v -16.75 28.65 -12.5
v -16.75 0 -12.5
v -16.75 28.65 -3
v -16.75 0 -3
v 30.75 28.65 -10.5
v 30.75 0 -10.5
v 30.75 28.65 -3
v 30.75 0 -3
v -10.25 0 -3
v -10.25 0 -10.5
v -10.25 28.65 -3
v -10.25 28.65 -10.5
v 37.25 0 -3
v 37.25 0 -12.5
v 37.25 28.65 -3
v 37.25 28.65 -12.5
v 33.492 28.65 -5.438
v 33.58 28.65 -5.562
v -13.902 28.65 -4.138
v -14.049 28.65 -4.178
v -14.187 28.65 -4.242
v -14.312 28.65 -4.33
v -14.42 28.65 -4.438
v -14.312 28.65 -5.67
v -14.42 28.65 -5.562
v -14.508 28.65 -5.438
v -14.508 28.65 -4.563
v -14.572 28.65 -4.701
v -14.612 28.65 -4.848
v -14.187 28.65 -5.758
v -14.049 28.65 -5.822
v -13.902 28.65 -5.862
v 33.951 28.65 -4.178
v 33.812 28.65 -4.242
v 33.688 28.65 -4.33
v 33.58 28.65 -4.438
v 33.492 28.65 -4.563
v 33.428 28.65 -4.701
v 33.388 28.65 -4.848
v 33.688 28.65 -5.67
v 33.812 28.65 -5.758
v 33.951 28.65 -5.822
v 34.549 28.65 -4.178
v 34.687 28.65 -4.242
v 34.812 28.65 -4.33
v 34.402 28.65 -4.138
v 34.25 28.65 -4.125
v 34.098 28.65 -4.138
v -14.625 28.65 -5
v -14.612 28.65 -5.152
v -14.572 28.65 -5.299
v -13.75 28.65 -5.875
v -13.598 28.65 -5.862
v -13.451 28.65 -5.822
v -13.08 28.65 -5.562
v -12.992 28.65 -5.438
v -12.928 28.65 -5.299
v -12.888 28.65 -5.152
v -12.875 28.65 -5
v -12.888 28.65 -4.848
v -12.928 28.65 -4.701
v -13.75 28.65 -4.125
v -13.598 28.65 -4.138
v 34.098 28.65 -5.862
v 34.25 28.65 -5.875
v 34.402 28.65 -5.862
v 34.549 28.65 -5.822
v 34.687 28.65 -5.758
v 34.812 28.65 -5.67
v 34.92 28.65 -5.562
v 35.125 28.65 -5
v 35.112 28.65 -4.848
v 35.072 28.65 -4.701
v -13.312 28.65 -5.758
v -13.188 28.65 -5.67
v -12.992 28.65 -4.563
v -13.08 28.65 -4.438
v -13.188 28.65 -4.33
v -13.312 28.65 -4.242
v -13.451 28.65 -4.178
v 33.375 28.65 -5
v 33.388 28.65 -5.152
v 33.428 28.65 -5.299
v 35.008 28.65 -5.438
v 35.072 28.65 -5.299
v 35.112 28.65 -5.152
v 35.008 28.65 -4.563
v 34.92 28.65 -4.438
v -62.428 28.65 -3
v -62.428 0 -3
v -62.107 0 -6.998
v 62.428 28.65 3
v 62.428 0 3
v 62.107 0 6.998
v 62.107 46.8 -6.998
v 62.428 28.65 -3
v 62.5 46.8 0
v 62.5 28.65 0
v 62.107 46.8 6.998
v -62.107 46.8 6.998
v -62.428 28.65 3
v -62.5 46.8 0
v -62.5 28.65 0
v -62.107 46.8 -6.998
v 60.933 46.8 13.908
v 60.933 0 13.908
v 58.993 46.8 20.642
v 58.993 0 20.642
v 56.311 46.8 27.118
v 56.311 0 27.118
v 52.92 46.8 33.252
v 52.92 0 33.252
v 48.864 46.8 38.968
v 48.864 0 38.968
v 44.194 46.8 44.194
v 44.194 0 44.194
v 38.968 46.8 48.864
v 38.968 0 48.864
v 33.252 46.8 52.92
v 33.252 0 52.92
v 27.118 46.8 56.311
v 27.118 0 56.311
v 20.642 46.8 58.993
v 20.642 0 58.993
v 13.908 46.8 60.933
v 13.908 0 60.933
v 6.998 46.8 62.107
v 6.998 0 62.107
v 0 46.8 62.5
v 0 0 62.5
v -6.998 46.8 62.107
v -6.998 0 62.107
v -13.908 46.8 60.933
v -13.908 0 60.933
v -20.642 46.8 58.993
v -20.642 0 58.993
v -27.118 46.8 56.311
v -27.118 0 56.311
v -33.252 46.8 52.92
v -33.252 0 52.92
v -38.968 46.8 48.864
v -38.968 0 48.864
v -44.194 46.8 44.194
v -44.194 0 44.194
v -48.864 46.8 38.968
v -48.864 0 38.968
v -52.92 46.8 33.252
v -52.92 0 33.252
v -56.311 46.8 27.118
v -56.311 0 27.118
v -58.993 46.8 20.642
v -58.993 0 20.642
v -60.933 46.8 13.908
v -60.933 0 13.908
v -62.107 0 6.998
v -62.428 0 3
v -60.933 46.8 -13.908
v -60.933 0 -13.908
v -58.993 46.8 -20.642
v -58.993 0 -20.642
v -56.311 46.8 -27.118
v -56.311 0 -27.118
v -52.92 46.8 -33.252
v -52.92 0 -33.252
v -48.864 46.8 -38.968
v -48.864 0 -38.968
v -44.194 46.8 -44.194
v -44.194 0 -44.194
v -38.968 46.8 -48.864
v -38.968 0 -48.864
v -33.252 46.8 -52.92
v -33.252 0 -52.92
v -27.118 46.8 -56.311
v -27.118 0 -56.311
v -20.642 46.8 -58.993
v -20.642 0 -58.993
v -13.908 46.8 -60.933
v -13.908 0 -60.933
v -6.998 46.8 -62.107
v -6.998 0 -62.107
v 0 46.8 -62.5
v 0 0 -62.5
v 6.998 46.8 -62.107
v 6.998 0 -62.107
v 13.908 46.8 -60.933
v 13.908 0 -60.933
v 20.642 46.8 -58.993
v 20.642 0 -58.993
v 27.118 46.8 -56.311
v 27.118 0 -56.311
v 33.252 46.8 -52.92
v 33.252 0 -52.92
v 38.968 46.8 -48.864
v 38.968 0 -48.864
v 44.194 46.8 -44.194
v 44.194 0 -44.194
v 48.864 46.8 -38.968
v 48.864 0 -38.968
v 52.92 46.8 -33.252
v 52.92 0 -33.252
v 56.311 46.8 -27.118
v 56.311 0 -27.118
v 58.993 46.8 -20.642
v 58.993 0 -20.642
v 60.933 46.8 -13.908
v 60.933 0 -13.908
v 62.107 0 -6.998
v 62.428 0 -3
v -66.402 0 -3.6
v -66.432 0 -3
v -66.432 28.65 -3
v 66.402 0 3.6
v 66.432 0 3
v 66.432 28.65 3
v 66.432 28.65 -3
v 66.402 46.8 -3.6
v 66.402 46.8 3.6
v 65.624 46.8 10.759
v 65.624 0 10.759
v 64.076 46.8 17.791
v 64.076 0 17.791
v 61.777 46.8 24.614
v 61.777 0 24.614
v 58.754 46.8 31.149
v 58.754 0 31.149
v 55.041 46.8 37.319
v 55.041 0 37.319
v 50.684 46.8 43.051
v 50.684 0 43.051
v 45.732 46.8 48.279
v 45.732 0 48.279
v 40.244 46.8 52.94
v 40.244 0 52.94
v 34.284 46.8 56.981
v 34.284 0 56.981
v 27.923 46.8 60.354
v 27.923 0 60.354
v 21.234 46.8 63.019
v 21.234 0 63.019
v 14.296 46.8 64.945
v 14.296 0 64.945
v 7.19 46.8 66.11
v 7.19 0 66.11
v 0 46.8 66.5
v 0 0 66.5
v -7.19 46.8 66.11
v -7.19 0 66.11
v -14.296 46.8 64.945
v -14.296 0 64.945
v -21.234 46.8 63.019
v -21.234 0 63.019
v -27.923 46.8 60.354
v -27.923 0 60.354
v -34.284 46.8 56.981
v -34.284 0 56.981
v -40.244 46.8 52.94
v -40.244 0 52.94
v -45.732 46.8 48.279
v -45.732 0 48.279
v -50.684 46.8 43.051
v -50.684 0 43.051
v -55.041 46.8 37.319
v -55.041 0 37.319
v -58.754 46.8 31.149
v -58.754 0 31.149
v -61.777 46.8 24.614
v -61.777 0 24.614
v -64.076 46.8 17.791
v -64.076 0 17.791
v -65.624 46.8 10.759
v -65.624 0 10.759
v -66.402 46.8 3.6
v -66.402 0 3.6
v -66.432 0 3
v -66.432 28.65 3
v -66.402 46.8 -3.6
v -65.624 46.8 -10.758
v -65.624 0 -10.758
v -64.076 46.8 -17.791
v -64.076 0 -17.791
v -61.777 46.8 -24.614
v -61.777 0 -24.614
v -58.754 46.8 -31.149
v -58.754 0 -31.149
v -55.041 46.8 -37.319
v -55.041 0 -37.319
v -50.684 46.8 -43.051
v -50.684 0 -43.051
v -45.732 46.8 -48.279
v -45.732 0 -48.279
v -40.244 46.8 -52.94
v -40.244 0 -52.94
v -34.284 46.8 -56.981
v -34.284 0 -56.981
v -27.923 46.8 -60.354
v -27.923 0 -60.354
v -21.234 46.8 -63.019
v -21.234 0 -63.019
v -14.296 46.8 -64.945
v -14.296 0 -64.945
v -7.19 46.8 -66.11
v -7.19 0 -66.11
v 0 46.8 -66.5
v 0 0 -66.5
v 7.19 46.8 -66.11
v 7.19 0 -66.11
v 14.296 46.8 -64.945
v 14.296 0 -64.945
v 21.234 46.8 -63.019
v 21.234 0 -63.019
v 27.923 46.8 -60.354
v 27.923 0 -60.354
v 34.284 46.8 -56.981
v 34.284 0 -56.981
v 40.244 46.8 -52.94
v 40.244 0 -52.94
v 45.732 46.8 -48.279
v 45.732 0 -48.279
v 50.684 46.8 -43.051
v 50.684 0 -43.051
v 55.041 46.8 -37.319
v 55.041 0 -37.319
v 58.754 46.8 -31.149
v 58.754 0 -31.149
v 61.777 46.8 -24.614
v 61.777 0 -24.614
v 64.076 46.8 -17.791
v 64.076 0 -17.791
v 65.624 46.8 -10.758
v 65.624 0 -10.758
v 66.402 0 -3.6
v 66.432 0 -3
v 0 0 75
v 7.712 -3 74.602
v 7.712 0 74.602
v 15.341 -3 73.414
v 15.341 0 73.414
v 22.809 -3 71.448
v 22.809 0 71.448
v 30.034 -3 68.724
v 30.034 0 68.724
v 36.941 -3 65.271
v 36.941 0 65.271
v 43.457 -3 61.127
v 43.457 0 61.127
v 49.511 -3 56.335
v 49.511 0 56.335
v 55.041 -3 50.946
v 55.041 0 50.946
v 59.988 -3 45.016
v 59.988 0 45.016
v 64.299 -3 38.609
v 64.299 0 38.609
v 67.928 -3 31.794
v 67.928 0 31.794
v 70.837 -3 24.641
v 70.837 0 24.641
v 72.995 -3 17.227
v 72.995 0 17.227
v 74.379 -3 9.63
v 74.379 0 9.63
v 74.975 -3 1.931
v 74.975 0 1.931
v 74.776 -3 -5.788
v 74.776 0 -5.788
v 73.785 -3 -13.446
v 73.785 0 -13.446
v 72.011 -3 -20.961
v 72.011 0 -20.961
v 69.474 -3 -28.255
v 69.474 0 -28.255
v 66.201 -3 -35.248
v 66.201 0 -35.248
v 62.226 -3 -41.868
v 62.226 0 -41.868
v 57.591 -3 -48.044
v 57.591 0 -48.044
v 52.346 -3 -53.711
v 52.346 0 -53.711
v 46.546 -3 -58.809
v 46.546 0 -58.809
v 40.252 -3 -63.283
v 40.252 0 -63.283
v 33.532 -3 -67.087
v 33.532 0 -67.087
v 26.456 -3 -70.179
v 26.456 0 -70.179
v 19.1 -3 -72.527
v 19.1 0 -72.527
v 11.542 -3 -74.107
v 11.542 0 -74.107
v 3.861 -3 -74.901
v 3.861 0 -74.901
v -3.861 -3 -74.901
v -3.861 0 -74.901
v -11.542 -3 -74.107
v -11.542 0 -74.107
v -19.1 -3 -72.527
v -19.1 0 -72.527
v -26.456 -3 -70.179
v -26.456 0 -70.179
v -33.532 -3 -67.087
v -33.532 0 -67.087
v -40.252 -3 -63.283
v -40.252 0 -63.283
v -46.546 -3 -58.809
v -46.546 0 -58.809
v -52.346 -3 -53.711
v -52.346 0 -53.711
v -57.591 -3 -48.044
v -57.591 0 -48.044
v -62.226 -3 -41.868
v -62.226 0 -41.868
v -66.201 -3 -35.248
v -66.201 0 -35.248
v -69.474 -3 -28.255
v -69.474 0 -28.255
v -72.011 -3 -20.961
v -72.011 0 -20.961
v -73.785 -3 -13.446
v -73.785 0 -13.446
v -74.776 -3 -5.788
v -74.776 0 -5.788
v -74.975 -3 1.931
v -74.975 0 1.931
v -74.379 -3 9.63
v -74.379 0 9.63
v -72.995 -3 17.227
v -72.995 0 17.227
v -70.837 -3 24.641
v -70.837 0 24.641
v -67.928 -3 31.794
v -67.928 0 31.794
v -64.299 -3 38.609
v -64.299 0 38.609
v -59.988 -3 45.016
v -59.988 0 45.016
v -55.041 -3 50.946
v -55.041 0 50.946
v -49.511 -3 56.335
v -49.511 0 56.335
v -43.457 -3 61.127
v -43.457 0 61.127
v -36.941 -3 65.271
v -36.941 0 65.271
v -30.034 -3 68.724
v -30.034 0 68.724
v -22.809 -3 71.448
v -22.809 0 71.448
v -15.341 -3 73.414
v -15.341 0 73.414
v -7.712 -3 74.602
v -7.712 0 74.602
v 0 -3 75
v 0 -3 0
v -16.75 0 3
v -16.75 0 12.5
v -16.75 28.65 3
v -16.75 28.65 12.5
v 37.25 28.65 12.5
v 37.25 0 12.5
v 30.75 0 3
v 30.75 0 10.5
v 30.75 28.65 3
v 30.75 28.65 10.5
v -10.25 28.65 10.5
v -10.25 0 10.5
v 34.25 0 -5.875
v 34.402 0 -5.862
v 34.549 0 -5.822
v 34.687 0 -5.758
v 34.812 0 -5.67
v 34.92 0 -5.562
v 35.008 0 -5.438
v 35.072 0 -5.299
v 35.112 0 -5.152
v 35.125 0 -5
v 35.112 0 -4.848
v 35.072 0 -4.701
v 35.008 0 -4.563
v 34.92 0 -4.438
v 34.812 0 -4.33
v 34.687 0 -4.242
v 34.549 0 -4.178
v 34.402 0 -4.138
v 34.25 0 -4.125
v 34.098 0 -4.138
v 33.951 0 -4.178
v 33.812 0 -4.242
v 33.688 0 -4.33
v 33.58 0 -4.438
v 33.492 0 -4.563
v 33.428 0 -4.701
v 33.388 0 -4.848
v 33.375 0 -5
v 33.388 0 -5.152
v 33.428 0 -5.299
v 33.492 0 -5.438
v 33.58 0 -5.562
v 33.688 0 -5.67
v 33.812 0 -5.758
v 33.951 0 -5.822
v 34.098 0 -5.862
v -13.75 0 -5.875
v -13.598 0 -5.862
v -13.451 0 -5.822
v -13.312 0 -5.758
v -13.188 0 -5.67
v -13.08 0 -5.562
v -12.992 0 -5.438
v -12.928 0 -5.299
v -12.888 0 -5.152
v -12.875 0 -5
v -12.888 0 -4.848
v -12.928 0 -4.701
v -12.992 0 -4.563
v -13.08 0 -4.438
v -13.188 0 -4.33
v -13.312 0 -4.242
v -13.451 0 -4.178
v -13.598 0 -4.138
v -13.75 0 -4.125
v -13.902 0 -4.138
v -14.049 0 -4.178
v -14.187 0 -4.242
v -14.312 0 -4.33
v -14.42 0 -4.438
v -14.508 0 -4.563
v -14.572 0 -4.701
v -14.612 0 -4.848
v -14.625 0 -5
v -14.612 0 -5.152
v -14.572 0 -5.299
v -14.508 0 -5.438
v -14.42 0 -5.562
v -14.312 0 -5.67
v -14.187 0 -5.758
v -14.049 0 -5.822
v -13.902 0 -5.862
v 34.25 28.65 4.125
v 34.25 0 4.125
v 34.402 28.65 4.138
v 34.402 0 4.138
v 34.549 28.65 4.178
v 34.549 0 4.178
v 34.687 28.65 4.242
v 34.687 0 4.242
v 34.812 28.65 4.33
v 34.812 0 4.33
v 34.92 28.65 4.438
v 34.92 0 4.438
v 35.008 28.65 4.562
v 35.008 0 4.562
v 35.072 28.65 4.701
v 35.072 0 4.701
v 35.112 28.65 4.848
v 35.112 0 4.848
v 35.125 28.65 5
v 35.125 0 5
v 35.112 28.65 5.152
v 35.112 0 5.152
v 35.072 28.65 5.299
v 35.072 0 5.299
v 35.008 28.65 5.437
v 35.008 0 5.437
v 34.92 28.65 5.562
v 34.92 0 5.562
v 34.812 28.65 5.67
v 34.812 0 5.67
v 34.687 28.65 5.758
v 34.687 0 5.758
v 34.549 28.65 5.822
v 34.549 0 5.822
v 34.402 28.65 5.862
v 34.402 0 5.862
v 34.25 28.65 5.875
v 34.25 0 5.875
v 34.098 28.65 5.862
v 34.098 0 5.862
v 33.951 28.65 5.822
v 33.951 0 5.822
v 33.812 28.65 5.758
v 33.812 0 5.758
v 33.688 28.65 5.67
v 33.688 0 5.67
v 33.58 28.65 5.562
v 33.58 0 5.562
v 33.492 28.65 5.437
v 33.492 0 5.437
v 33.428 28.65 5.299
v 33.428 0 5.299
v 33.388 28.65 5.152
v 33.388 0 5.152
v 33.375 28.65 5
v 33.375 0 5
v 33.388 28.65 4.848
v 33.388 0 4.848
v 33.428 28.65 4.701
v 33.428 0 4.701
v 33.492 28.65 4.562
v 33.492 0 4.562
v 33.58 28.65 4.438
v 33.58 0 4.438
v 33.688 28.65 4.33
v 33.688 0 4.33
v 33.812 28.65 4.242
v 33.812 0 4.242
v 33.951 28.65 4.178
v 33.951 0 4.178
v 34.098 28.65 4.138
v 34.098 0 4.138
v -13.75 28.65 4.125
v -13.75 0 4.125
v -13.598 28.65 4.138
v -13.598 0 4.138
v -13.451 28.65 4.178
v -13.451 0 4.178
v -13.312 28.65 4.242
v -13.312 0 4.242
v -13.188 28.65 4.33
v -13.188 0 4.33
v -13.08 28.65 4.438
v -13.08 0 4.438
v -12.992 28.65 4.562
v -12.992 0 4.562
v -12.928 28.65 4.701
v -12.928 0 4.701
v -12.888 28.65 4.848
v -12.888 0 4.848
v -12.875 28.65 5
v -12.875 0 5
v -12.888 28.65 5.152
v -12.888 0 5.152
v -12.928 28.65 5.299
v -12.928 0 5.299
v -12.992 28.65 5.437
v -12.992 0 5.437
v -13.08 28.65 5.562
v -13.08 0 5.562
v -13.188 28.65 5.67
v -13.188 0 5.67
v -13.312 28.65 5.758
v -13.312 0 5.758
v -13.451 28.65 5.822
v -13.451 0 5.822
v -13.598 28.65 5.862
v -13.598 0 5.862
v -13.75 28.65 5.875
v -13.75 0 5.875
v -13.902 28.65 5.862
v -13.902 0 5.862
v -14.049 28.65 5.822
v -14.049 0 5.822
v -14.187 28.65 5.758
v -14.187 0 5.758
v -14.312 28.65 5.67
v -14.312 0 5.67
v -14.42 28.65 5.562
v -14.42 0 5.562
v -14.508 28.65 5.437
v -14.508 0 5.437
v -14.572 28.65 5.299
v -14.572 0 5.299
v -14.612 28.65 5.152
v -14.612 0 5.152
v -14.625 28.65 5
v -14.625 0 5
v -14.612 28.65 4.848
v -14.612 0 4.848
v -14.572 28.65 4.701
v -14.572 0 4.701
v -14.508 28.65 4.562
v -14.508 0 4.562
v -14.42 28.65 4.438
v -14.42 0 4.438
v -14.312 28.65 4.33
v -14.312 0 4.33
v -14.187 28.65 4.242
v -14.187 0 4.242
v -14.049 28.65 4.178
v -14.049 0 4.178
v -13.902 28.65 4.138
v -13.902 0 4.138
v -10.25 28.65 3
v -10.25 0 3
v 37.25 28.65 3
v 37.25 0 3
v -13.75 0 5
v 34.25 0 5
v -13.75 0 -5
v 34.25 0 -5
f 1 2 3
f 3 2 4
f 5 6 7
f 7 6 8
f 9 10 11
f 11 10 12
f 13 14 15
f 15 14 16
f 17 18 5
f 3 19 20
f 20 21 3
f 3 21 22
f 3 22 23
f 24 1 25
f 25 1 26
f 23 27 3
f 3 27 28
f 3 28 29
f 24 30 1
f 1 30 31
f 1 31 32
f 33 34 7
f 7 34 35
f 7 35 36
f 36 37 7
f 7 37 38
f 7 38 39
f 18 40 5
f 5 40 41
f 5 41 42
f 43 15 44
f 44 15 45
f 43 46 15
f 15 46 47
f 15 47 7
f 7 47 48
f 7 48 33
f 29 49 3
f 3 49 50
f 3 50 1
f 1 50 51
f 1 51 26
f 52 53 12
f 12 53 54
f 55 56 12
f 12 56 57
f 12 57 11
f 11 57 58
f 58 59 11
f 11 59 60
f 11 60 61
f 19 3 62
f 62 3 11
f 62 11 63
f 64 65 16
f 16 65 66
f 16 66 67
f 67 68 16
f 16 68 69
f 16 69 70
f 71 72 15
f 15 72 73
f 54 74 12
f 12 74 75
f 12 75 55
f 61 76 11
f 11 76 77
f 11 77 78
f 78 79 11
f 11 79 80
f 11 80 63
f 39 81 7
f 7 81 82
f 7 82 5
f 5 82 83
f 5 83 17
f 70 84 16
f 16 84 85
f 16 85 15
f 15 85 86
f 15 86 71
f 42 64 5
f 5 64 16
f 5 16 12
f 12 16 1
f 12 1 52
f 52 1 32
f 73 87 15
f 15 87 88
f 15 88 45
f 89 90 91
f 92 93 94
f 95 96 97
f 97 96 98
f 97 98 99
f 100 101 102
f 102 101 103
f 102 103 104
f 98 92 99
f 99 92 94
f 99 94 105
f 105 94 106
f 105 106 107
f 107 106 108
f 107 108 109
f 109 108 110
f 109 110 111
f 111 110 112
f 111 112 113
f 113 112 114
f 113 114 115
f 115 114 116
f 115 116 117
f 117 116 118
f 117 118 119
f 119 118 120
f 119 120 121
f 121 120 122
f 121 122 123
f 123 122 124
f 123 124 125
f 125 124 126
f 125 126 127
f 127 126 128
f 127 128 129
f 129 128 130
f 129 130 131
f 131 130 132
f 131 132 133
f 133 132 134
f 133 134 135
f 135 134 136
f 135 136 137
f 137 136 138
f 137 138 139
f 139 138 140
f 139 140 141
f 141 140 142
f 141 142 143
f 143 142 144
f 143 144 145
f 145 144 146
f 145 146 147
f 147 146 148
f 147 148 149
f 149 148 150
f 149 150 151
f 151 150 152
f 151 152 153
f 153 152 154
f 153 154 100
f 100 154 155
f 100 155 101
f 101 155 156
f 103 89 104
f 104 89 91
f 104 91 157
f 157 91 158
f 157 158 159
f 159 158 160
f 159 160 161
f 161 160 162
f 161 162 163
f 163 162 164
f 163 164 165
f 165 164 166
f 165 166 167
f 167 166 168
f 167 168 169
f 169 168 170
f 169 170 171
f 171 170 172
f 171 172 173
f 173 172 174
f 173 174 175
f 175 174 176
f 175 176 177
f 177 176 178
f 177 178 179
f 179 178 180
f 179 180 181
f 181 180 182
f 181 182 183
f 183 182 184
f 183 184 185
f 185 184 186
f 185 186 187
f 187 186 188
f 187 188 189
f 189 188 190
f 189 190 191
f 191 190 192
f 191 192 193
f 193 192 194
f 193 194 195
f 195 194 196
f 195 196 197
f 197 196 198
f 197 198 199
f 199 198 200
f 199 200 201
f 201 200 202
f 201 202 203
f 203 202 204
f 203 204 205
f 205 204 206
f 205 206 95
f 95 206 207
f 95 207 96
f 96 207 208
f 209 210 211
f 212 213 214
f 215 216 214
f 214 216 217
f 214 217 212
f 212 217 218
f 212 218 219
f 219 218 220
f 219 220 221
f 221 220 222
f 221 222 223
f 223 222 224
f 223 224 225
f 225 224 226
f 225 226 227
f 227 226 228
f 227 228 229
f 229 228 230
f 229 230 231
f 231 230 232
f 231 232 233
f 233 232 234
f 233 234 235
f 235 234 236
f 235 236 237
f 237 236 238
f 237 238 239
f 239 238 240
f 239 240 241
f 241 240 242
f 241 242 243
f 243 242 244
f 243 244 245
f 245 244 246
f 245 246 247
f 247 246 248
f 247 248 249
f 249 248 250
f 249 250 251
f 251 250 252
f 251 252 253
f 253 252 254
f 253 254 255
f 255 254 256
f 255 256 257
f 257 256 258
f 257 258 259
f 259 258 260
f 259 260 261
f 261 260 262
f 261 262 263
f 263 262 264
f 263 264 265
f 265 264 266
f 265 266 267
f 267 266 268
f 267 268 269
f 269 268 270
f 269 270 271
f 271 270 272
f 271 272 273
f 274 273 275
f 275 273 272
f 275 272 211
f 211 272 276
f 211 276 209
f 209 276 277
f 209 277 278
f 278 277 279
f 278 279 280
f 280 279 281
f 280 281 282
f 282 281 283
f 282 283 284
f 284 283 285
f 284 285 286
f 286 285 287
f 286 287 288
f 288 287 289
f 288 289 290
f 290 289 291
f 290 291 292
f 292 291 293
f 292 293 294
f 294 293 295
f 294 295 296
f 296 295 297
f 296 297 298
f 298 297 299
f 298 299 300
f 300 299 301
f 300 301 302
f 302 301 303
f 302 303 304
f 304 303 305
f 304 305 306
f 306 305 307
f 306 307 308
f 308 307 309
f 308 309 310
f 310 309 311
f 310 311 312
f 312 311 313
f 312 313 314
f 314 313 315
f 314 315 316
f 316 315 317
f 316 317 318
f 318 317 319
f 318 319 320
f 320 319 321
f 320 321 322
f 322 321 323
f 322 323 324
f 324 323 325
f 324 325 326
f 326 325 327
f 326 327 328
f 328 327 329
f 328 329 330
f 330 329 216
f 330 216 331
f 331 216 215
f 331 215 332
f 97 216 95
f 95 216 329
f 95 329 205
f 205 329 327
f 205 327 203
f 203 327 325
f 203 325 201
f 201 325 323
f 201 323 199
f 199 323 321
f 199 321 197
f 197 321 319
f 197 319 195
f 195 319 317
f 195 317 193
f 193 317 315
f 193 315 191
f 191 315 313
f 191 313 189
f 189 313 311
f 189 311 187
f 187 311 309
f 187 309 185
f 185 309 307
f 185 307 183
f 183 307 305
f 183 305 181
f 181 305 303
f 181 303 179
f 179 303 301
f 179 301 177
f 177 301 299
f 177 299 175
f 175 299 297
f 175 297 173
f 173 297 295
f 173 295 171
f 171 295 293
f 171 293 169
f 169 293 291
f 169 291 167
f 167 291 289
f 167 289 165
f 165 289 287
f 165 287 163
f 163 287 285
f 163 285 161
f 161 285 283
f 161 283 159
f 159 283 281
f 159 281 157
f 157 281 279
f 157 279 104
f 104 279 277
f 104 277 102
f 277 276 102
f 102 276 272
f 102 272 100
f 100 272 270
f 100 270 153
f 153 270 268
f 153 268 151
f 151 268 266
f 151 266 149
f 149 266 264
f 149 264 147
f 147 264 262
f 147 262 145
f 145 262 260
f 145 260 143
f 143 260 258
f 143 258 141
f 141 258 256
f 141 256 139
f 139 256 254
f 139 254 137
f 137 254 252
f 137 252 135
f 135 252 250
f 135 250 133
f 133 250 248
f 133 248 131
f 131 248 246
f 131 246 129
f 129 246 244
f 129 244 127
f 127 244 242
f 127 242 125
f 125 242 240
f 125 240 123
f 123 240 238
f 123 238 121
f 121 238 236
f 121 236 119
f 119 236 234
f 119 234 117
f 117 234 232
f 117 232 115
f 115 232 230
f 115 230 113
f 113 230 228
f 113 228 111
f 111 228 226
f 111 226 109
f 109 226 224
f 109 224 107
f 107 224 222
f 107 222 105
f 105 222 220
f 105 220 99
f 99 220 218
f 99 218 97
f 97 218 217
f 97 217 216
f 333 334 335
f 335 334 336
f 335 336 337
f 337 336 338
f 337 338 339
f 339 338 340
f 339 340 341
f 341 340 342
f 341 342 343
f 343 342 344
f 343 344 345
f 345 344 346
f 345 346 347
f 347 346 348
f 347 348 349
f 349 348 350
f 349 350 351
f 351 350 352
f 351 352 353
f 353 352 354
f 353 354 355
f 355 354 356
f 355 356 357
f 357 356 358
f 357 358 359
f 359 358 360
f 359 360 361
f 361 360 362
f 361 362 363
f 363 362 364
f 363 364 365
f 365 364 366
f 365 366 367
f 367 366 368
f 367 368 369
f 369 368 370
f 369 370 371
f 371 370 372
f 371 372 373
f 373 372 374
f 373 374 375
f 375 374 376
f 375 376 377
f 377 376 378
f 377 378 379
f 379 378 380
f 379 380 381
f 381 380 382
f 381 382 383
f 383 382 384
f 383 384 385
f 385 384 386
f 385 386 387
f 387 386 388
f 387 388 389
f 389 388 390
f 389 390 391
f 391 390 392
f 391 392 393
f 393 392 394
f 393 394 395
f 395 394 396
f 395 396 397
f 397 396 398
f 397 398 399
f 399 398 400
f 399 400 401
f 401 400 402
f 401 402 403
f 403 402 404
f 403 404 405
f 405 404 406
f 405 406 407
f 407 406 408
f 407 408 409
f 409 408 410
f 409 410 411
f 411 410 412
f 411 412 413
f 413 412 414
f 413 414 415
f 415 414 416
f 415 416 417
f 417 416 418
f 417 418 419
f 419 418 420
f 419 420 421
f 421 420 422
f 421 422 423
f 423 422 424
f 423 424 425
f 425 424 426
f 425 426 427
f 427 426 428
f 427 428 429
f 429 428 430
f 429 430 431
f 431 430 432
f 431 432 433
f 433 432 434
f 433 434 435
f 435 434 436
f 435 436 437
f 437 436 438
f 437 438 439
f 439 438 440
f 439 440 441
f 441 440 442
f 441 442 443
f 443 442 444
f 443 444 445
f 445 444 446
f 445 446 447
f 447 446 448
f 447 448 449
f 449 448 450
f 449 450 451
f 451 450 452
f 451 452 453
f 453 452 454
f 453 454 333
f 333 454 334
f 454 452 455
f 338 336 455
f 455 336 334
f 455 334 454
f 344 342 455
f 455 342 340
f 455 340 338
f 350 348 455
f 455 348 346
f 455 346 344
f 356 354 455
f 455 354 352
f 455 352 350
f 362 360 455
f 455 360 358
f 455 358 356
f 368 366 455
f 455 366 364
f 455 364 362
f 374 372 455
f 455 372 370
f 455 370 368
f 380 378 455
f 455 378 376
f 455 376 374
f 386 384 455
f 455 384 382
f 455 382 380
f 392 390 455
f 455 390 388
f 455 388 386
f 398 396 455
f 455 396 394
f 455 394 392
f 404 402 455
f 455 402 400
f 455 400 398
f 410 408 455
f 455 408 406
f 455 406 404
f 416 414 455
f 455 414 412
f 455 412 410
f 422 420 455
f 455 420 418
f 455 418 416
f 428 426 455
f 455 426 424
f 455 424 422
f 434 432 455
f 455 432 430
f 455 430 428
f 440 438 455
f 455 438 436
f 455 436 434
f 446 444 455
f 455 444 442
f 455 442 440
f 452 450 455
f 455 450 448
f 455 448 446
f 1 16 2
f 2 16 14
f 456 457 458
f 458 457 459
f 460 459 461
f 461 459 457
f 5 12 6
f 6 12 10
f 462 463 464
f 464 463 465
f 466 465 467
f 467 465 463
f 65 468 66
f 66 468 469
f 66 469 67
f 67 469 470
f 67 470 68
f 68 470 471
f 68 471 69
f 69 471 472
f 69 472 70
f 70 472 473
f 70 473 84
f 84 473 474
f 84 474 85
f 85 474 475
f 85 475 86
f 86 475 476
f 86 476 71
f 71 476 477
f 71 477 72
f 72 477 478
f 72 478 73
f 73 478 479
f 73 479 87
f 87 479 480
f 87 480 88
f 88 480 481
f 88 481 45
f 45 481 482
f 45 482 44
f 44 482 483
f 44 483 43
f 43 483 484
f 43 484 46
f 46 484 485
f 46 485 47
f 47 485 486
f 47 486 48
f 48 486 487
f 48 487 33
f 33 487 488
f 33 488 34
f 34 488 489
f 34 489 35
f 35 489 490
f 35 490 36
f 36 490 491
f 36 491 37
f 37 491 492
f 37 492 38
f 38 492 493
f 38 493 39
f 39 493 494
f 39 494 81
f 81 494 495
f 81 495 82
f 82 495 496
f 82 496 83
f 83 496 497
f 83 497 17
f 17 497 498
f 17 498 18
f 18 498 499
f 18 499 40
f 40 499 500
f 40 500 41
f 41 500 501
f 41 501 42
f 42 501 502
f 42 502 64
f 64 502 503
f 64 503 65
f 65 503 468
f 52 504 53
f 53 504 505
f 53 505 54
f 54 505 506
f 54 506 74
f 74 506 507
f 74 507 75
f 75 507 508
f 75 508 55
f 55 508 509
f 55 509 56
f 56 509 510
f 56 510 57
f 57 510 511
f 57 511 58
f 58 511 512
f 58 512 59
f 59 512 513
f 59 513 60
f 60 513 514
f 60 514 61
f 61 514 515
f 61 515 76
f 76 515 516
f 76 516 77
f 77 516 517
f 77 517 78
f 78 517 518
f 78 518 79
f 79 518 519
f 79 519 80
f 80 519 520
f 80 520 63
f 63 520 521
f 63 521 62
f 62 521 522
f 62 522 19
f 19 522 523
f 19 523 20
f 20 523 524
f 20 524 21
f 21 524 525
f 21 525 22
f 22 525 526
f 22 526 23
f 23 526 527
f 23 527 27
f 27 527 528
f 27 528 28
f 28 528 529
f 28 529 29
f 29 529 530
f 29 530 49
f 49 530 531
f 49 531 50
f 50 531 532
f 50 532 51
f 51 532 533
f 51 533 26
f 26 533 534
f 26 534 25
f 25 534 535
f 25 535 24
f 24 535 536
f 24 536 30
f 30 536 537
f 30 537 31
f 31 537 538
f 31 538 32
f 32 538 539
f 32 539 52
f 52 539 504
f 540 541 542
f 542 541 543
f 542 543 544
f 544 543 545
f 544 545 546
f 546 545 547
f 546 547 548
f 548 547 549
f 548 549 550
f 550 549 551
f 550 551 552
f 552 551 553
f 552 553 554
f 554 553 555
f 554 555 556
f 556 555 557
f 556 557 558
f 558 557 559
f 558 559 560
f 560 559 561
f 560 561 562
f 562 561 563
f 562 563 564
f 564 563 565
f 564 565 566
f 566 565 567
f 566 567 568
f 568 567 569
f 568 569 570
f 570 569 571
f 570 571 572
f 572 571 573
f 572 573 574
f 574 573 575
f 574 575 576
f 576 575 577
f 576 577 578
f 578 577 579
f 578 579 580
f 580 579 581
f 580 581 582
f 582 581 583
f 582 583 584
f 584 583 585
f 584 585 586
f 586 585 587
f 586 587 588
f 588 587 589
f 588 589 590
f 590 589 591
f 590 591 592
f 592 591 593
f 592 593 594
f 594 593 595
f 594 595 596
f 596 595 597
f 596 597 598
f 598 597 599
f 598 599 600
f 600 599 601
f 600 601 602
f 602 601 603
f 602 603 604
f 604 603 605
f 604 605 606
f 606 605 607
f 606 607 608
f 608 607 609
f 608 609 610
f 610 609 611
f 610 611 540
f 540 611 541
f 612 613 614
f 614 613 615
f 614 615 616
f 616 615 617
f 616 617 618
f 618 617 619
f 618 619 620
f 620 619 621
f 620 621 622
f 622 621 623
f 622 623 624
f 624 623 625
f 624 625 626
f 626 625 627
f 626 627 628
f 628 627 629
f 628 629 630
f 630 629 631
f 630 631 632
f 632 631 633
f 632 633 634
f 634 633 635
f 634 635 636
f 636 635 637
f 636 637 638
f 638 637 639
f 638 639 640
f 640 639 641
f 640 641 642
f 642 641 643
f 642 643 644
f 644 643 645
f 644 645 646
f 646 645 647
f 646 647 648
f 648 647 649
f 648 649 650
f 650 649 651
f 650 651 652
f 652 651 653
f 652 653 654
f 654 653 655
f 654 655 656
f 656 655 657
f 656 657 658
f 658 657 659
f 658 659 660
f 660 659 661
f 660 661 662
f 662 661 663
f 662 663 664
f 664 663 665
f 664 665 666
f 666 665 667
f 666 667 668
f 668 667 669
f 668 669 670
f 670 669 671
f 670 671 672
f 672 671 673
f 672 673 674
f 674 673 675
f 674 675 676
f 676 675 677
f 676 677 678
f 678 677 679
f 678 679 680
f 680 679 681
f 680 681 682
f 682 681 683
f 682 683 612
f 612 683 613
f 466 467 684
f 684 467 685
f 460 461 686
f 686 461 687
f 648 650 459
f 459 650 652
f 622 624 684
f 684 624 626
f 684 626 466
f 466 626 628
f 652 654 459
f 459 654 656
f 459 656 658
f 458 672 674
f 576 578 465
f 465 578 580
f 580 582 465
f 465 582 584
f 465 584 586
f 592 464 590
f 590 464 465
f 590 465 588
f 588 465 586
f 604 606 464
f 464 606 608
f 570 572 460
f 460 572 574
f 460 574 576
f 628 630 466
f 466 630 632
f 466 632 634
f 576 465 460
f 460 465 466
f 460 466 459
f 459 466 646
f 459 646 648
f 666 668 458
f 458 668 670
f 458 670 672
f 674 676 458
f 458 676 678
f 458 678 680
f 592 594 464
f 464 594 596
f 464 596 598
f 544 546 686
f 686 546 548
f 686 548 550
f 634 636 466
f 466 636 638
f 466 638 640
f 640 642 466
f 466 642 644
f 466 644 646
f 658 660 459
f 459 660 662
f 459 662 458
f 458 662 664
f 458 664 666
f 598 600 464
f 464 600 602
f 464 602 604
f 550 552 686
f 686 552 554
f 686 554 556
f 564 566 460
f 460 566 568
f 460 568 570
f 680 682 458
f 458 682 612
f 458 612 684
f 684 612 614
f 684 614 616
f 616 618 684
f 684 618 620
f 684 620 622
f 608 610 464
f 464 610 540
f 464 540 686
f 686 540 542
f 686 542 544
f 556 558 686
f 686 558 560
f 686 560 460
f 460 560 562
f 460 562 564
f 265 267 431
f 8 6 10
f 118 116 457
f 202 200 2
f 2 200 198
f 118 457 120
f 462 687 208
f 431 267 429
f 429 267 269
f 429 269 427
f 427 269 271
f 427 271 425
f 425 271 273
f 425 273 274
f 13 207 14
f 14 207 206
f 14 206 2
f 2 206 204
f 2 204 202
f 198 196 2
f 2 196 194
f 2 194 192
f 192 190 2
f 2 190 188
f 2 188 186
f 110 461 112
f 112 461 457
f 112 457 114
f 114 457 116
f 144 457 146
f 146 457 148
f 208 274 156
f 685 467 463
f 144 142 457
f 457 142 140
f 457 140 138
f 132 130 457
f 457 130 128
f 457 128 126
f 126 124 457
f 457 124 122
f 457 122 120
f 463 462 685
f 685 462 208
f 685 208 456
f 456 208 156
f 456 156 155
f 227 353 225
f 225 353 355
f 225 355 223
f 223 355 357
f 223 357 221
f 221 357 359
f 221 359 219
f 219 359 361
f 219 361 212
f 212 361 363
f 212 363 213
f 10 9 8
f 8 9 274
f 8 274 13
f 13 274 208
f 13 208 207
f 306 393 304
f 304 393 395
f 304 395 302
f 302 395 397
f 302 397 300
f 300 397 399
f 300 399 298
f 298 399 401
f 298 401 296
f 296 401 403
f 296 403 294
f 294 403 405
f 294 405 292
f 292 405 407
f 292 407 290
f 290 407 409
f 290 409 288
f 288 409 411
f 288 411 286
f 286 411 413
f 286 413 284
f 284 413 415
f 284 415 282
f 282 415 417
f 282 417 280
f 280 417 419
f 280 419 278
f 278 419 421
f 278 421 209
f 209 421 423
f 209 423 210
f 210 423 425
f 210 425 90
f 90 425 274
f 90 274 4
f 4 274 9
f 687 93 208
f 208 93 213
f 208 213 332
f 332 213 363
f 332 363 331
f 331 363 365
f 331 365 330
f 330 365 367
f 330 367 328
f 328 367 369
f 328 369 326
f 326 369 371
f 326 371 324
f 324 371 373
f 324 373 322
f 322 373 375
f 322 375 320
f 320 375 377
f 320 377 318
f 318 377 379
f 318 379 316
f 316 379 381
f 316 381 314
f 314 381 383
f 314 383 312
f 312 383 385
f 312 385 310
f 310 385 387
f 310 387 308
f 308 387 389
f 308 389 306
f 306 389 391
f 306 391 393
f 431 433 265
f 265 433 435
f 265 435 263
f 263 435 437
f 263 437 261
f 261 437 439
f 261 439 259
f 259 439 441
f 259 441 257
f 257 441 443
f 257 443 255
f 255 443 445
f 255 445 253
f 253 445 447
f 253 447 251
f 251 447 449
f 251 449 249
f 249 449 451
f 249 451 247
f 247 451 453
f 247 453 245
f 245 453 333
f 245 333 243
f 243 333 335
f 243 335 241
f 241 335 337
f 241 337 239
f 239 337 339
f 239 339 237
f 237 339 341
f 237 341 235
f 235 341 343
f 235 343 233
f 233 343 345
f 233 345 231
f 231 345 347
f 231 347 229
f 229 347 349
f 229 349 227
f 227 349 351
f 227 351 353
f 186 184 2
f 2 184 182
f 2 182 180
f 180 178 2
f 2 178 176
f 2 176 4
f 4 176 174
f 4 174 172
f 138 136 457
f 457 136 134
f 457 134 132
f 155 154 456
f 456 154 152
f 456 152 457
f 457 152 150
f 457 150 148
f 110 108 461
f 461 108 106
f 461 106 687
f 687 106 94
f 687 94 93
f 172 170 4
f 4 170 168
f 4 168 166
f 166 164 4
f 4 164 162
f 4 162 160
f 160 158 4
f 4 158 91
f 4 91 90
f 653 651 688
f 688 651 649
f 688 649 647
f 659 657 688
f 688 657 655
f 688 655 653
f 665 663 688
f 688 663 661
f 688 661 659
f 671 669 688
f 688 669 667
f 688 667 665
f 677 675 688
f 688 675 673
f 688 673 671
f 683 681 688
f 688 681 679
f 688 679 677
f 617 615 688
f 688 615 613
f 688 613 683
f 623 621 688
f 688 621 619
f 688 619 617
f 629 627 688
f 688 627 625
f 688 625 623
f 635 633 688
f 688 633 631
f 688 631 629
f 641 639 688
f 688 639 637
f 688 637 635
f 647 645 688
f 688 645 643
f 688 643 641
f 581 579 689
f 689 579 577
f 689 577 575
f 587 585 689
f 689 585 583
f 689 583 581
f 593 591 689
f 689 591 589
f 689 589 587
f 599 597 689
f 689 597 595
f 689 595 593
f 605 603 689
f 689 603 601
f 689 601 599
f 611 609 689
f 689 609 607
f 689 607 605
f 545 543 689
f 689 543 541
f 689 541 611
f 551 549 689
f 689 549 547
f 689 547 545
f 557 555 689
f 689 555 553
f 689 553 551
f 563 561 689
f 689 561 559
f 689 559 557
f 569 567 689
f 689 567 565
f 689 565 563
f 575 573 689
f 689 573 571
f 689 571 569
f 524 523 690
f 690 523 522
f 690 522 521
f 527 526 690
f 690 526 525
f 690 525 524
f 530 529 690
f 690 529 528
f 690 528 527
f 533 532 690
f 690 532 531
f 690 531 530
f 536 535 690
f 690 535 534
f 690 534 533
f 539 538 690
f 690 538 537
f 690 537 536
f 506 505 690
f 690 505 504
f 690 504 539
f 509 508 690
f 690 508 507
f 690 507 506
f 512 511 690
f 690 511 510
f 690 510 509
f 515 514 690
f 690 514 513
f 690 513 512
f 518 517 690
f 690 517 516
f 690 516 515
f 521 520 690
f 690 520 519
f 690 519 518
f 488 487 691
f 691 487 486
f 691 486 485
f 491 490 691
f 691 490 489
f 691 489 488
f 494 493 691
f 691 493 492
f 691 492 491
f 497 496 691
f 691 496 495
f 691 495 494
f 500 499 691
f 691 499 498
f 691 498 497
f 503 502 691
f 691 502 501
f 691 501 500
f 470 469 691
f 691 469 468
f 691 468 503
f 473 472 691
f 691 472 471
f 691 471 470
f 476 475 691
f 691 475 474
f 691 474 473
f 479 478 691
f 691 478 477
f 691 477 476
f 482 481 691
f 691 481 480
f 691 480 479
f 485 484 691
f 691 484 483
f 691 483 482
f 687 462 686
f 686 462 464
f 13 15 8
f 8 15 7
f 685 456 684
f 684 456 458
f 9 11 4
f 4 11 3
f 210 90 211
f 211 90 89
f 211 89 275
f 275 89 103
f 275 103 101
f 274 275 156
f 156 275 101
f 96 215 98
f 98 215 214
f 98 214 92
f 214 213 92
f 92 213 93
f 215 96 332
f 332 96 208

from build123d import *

# Parameters (mm, degrees)
SKETCH1_R               = 66.5
SKETCH1_R_2             = 62.5
BOSS_EXTRUDE1_DEPTH     = 46.8
SKETCH1_3_R             = 75
SKETCH1_3_R_2           = 66.5
BOSS_EXTRUDE2_DEPTH     = 3
BOSS_EXTRUDE3_START     = -3
SKETCH1_5_R             = 66.5
BOSS_EXTRUDE3_DEPTH     = 3
SKETCH2_W               = 54
SKETCH2_H               = 25
SKETCH2_R               = 0.875
SKETCH2_W_2             = 41
SKETCH2_H_2             = 21
BOSS_EXTRUDE4_DEPTH     = 28.65
CUT_EXTRUDE1_DEPTH      = 128.409978024
CUT_EXTRUDE1_DEPTH_BACK = 128.409978024
SKETCH3_W               = 6
SKETCH3_H               = 28.65


with BuildPart() as part:
    # Sketch1 → Boss-Extrude1 (new body)
    with BuildSketch(Plane(origin=(0, 0, 0), x_dir=(1, 0, 0), z_dir=(0, 1, 0))):
        Circle(SKETCH1_R)
        Circle(SKETCH1_R_2, mode=Mode.SUBTRACT)
    extrude(amount=BOSS_EXTRUDE1_DEPTH)



with BuildPart() as body_2:
    # Sketch1<3> → Boss-Extrude2 (new body)
    with BuildSketch(Plane(origin=(0, 0, 0), x_dir=(1, 0, 0), z_dir=(0, 1, 0))):
        Circle(SKETCH1_3_R)
        Circle(SKETCH1_3_R_2, mode=Mode.SUBTRACT)
    extrude(amount=-BOSS_EXTRUDE2_DEPTH)


with BuildPart() as part_1:
    add(part.part)

    add(body_2.part)  # Boss-Extrude3 merges body 2
    # Sketch1<5> → Boss-Extrude3 (add)
    with BuildSketch(Plane(origin=(0, 0, 0), x_dir=(1, 0, 0), z_dir=(0, 1, 0)).offset(BOSS_EXTRUDE3_START)):
        Circle(SKETCH1_5_R)
    extrude(amount=BOSS_EXTRUDE3_DEPTH)

    # Sketch2 → Boss-Extrude4 (add)
    with BuildSketch(Plane(origin=(0, 0, 0), x_dir=(1, 0, 0), z_dir=(0, 1, 0))):
        with Locations((10.25, 0)):
            Rectangle(SKETCH2_W, SKETCH2_H)
        with Locations((34.25, 5)):
            Circle(SKETCH2_R, mode=Mode.SUBTRACT)
        with Locations((34.25, -5)):
            Circle(SKETCH2_R, mode=Mode.SUBTRACT)
        with Locations((10.25, 0)):
            Rectangle(SKETCH2_W_2, SKETCH2_H_2, mode=Mode.SUBTRACT)
        with Locations((-13.75, 5)):
            Circle(SKETCH2_R, mode=Mode.SUBTRACT)
        with Locations((-13.75, -5)):
            Circle(SKETCH2_R, mode=Mode.SUBTRACT)
    extrude(amount=BOSS_EXTRUDE4_DEPTH)

    # Sketch3 → Cut-Extrude1 (cut, two sides: drawn at the far end of the back side and taken through both)
    with BuildSketch(Plane.ZY.offset(16.75).offset(-CUT_EXTRUDE1_DEPTH_BACK)):
        with Locations((0, 14.325)):
            Rectangle(SKETCH3_W, SKETCH3_H)
    extrude(amount=CUT_EXTRUDE1_DEPTH + CUT_EXTRUDE1_DEPTH_BACK, mode=Mode.SUBTRACT)


solid = part_1.part
